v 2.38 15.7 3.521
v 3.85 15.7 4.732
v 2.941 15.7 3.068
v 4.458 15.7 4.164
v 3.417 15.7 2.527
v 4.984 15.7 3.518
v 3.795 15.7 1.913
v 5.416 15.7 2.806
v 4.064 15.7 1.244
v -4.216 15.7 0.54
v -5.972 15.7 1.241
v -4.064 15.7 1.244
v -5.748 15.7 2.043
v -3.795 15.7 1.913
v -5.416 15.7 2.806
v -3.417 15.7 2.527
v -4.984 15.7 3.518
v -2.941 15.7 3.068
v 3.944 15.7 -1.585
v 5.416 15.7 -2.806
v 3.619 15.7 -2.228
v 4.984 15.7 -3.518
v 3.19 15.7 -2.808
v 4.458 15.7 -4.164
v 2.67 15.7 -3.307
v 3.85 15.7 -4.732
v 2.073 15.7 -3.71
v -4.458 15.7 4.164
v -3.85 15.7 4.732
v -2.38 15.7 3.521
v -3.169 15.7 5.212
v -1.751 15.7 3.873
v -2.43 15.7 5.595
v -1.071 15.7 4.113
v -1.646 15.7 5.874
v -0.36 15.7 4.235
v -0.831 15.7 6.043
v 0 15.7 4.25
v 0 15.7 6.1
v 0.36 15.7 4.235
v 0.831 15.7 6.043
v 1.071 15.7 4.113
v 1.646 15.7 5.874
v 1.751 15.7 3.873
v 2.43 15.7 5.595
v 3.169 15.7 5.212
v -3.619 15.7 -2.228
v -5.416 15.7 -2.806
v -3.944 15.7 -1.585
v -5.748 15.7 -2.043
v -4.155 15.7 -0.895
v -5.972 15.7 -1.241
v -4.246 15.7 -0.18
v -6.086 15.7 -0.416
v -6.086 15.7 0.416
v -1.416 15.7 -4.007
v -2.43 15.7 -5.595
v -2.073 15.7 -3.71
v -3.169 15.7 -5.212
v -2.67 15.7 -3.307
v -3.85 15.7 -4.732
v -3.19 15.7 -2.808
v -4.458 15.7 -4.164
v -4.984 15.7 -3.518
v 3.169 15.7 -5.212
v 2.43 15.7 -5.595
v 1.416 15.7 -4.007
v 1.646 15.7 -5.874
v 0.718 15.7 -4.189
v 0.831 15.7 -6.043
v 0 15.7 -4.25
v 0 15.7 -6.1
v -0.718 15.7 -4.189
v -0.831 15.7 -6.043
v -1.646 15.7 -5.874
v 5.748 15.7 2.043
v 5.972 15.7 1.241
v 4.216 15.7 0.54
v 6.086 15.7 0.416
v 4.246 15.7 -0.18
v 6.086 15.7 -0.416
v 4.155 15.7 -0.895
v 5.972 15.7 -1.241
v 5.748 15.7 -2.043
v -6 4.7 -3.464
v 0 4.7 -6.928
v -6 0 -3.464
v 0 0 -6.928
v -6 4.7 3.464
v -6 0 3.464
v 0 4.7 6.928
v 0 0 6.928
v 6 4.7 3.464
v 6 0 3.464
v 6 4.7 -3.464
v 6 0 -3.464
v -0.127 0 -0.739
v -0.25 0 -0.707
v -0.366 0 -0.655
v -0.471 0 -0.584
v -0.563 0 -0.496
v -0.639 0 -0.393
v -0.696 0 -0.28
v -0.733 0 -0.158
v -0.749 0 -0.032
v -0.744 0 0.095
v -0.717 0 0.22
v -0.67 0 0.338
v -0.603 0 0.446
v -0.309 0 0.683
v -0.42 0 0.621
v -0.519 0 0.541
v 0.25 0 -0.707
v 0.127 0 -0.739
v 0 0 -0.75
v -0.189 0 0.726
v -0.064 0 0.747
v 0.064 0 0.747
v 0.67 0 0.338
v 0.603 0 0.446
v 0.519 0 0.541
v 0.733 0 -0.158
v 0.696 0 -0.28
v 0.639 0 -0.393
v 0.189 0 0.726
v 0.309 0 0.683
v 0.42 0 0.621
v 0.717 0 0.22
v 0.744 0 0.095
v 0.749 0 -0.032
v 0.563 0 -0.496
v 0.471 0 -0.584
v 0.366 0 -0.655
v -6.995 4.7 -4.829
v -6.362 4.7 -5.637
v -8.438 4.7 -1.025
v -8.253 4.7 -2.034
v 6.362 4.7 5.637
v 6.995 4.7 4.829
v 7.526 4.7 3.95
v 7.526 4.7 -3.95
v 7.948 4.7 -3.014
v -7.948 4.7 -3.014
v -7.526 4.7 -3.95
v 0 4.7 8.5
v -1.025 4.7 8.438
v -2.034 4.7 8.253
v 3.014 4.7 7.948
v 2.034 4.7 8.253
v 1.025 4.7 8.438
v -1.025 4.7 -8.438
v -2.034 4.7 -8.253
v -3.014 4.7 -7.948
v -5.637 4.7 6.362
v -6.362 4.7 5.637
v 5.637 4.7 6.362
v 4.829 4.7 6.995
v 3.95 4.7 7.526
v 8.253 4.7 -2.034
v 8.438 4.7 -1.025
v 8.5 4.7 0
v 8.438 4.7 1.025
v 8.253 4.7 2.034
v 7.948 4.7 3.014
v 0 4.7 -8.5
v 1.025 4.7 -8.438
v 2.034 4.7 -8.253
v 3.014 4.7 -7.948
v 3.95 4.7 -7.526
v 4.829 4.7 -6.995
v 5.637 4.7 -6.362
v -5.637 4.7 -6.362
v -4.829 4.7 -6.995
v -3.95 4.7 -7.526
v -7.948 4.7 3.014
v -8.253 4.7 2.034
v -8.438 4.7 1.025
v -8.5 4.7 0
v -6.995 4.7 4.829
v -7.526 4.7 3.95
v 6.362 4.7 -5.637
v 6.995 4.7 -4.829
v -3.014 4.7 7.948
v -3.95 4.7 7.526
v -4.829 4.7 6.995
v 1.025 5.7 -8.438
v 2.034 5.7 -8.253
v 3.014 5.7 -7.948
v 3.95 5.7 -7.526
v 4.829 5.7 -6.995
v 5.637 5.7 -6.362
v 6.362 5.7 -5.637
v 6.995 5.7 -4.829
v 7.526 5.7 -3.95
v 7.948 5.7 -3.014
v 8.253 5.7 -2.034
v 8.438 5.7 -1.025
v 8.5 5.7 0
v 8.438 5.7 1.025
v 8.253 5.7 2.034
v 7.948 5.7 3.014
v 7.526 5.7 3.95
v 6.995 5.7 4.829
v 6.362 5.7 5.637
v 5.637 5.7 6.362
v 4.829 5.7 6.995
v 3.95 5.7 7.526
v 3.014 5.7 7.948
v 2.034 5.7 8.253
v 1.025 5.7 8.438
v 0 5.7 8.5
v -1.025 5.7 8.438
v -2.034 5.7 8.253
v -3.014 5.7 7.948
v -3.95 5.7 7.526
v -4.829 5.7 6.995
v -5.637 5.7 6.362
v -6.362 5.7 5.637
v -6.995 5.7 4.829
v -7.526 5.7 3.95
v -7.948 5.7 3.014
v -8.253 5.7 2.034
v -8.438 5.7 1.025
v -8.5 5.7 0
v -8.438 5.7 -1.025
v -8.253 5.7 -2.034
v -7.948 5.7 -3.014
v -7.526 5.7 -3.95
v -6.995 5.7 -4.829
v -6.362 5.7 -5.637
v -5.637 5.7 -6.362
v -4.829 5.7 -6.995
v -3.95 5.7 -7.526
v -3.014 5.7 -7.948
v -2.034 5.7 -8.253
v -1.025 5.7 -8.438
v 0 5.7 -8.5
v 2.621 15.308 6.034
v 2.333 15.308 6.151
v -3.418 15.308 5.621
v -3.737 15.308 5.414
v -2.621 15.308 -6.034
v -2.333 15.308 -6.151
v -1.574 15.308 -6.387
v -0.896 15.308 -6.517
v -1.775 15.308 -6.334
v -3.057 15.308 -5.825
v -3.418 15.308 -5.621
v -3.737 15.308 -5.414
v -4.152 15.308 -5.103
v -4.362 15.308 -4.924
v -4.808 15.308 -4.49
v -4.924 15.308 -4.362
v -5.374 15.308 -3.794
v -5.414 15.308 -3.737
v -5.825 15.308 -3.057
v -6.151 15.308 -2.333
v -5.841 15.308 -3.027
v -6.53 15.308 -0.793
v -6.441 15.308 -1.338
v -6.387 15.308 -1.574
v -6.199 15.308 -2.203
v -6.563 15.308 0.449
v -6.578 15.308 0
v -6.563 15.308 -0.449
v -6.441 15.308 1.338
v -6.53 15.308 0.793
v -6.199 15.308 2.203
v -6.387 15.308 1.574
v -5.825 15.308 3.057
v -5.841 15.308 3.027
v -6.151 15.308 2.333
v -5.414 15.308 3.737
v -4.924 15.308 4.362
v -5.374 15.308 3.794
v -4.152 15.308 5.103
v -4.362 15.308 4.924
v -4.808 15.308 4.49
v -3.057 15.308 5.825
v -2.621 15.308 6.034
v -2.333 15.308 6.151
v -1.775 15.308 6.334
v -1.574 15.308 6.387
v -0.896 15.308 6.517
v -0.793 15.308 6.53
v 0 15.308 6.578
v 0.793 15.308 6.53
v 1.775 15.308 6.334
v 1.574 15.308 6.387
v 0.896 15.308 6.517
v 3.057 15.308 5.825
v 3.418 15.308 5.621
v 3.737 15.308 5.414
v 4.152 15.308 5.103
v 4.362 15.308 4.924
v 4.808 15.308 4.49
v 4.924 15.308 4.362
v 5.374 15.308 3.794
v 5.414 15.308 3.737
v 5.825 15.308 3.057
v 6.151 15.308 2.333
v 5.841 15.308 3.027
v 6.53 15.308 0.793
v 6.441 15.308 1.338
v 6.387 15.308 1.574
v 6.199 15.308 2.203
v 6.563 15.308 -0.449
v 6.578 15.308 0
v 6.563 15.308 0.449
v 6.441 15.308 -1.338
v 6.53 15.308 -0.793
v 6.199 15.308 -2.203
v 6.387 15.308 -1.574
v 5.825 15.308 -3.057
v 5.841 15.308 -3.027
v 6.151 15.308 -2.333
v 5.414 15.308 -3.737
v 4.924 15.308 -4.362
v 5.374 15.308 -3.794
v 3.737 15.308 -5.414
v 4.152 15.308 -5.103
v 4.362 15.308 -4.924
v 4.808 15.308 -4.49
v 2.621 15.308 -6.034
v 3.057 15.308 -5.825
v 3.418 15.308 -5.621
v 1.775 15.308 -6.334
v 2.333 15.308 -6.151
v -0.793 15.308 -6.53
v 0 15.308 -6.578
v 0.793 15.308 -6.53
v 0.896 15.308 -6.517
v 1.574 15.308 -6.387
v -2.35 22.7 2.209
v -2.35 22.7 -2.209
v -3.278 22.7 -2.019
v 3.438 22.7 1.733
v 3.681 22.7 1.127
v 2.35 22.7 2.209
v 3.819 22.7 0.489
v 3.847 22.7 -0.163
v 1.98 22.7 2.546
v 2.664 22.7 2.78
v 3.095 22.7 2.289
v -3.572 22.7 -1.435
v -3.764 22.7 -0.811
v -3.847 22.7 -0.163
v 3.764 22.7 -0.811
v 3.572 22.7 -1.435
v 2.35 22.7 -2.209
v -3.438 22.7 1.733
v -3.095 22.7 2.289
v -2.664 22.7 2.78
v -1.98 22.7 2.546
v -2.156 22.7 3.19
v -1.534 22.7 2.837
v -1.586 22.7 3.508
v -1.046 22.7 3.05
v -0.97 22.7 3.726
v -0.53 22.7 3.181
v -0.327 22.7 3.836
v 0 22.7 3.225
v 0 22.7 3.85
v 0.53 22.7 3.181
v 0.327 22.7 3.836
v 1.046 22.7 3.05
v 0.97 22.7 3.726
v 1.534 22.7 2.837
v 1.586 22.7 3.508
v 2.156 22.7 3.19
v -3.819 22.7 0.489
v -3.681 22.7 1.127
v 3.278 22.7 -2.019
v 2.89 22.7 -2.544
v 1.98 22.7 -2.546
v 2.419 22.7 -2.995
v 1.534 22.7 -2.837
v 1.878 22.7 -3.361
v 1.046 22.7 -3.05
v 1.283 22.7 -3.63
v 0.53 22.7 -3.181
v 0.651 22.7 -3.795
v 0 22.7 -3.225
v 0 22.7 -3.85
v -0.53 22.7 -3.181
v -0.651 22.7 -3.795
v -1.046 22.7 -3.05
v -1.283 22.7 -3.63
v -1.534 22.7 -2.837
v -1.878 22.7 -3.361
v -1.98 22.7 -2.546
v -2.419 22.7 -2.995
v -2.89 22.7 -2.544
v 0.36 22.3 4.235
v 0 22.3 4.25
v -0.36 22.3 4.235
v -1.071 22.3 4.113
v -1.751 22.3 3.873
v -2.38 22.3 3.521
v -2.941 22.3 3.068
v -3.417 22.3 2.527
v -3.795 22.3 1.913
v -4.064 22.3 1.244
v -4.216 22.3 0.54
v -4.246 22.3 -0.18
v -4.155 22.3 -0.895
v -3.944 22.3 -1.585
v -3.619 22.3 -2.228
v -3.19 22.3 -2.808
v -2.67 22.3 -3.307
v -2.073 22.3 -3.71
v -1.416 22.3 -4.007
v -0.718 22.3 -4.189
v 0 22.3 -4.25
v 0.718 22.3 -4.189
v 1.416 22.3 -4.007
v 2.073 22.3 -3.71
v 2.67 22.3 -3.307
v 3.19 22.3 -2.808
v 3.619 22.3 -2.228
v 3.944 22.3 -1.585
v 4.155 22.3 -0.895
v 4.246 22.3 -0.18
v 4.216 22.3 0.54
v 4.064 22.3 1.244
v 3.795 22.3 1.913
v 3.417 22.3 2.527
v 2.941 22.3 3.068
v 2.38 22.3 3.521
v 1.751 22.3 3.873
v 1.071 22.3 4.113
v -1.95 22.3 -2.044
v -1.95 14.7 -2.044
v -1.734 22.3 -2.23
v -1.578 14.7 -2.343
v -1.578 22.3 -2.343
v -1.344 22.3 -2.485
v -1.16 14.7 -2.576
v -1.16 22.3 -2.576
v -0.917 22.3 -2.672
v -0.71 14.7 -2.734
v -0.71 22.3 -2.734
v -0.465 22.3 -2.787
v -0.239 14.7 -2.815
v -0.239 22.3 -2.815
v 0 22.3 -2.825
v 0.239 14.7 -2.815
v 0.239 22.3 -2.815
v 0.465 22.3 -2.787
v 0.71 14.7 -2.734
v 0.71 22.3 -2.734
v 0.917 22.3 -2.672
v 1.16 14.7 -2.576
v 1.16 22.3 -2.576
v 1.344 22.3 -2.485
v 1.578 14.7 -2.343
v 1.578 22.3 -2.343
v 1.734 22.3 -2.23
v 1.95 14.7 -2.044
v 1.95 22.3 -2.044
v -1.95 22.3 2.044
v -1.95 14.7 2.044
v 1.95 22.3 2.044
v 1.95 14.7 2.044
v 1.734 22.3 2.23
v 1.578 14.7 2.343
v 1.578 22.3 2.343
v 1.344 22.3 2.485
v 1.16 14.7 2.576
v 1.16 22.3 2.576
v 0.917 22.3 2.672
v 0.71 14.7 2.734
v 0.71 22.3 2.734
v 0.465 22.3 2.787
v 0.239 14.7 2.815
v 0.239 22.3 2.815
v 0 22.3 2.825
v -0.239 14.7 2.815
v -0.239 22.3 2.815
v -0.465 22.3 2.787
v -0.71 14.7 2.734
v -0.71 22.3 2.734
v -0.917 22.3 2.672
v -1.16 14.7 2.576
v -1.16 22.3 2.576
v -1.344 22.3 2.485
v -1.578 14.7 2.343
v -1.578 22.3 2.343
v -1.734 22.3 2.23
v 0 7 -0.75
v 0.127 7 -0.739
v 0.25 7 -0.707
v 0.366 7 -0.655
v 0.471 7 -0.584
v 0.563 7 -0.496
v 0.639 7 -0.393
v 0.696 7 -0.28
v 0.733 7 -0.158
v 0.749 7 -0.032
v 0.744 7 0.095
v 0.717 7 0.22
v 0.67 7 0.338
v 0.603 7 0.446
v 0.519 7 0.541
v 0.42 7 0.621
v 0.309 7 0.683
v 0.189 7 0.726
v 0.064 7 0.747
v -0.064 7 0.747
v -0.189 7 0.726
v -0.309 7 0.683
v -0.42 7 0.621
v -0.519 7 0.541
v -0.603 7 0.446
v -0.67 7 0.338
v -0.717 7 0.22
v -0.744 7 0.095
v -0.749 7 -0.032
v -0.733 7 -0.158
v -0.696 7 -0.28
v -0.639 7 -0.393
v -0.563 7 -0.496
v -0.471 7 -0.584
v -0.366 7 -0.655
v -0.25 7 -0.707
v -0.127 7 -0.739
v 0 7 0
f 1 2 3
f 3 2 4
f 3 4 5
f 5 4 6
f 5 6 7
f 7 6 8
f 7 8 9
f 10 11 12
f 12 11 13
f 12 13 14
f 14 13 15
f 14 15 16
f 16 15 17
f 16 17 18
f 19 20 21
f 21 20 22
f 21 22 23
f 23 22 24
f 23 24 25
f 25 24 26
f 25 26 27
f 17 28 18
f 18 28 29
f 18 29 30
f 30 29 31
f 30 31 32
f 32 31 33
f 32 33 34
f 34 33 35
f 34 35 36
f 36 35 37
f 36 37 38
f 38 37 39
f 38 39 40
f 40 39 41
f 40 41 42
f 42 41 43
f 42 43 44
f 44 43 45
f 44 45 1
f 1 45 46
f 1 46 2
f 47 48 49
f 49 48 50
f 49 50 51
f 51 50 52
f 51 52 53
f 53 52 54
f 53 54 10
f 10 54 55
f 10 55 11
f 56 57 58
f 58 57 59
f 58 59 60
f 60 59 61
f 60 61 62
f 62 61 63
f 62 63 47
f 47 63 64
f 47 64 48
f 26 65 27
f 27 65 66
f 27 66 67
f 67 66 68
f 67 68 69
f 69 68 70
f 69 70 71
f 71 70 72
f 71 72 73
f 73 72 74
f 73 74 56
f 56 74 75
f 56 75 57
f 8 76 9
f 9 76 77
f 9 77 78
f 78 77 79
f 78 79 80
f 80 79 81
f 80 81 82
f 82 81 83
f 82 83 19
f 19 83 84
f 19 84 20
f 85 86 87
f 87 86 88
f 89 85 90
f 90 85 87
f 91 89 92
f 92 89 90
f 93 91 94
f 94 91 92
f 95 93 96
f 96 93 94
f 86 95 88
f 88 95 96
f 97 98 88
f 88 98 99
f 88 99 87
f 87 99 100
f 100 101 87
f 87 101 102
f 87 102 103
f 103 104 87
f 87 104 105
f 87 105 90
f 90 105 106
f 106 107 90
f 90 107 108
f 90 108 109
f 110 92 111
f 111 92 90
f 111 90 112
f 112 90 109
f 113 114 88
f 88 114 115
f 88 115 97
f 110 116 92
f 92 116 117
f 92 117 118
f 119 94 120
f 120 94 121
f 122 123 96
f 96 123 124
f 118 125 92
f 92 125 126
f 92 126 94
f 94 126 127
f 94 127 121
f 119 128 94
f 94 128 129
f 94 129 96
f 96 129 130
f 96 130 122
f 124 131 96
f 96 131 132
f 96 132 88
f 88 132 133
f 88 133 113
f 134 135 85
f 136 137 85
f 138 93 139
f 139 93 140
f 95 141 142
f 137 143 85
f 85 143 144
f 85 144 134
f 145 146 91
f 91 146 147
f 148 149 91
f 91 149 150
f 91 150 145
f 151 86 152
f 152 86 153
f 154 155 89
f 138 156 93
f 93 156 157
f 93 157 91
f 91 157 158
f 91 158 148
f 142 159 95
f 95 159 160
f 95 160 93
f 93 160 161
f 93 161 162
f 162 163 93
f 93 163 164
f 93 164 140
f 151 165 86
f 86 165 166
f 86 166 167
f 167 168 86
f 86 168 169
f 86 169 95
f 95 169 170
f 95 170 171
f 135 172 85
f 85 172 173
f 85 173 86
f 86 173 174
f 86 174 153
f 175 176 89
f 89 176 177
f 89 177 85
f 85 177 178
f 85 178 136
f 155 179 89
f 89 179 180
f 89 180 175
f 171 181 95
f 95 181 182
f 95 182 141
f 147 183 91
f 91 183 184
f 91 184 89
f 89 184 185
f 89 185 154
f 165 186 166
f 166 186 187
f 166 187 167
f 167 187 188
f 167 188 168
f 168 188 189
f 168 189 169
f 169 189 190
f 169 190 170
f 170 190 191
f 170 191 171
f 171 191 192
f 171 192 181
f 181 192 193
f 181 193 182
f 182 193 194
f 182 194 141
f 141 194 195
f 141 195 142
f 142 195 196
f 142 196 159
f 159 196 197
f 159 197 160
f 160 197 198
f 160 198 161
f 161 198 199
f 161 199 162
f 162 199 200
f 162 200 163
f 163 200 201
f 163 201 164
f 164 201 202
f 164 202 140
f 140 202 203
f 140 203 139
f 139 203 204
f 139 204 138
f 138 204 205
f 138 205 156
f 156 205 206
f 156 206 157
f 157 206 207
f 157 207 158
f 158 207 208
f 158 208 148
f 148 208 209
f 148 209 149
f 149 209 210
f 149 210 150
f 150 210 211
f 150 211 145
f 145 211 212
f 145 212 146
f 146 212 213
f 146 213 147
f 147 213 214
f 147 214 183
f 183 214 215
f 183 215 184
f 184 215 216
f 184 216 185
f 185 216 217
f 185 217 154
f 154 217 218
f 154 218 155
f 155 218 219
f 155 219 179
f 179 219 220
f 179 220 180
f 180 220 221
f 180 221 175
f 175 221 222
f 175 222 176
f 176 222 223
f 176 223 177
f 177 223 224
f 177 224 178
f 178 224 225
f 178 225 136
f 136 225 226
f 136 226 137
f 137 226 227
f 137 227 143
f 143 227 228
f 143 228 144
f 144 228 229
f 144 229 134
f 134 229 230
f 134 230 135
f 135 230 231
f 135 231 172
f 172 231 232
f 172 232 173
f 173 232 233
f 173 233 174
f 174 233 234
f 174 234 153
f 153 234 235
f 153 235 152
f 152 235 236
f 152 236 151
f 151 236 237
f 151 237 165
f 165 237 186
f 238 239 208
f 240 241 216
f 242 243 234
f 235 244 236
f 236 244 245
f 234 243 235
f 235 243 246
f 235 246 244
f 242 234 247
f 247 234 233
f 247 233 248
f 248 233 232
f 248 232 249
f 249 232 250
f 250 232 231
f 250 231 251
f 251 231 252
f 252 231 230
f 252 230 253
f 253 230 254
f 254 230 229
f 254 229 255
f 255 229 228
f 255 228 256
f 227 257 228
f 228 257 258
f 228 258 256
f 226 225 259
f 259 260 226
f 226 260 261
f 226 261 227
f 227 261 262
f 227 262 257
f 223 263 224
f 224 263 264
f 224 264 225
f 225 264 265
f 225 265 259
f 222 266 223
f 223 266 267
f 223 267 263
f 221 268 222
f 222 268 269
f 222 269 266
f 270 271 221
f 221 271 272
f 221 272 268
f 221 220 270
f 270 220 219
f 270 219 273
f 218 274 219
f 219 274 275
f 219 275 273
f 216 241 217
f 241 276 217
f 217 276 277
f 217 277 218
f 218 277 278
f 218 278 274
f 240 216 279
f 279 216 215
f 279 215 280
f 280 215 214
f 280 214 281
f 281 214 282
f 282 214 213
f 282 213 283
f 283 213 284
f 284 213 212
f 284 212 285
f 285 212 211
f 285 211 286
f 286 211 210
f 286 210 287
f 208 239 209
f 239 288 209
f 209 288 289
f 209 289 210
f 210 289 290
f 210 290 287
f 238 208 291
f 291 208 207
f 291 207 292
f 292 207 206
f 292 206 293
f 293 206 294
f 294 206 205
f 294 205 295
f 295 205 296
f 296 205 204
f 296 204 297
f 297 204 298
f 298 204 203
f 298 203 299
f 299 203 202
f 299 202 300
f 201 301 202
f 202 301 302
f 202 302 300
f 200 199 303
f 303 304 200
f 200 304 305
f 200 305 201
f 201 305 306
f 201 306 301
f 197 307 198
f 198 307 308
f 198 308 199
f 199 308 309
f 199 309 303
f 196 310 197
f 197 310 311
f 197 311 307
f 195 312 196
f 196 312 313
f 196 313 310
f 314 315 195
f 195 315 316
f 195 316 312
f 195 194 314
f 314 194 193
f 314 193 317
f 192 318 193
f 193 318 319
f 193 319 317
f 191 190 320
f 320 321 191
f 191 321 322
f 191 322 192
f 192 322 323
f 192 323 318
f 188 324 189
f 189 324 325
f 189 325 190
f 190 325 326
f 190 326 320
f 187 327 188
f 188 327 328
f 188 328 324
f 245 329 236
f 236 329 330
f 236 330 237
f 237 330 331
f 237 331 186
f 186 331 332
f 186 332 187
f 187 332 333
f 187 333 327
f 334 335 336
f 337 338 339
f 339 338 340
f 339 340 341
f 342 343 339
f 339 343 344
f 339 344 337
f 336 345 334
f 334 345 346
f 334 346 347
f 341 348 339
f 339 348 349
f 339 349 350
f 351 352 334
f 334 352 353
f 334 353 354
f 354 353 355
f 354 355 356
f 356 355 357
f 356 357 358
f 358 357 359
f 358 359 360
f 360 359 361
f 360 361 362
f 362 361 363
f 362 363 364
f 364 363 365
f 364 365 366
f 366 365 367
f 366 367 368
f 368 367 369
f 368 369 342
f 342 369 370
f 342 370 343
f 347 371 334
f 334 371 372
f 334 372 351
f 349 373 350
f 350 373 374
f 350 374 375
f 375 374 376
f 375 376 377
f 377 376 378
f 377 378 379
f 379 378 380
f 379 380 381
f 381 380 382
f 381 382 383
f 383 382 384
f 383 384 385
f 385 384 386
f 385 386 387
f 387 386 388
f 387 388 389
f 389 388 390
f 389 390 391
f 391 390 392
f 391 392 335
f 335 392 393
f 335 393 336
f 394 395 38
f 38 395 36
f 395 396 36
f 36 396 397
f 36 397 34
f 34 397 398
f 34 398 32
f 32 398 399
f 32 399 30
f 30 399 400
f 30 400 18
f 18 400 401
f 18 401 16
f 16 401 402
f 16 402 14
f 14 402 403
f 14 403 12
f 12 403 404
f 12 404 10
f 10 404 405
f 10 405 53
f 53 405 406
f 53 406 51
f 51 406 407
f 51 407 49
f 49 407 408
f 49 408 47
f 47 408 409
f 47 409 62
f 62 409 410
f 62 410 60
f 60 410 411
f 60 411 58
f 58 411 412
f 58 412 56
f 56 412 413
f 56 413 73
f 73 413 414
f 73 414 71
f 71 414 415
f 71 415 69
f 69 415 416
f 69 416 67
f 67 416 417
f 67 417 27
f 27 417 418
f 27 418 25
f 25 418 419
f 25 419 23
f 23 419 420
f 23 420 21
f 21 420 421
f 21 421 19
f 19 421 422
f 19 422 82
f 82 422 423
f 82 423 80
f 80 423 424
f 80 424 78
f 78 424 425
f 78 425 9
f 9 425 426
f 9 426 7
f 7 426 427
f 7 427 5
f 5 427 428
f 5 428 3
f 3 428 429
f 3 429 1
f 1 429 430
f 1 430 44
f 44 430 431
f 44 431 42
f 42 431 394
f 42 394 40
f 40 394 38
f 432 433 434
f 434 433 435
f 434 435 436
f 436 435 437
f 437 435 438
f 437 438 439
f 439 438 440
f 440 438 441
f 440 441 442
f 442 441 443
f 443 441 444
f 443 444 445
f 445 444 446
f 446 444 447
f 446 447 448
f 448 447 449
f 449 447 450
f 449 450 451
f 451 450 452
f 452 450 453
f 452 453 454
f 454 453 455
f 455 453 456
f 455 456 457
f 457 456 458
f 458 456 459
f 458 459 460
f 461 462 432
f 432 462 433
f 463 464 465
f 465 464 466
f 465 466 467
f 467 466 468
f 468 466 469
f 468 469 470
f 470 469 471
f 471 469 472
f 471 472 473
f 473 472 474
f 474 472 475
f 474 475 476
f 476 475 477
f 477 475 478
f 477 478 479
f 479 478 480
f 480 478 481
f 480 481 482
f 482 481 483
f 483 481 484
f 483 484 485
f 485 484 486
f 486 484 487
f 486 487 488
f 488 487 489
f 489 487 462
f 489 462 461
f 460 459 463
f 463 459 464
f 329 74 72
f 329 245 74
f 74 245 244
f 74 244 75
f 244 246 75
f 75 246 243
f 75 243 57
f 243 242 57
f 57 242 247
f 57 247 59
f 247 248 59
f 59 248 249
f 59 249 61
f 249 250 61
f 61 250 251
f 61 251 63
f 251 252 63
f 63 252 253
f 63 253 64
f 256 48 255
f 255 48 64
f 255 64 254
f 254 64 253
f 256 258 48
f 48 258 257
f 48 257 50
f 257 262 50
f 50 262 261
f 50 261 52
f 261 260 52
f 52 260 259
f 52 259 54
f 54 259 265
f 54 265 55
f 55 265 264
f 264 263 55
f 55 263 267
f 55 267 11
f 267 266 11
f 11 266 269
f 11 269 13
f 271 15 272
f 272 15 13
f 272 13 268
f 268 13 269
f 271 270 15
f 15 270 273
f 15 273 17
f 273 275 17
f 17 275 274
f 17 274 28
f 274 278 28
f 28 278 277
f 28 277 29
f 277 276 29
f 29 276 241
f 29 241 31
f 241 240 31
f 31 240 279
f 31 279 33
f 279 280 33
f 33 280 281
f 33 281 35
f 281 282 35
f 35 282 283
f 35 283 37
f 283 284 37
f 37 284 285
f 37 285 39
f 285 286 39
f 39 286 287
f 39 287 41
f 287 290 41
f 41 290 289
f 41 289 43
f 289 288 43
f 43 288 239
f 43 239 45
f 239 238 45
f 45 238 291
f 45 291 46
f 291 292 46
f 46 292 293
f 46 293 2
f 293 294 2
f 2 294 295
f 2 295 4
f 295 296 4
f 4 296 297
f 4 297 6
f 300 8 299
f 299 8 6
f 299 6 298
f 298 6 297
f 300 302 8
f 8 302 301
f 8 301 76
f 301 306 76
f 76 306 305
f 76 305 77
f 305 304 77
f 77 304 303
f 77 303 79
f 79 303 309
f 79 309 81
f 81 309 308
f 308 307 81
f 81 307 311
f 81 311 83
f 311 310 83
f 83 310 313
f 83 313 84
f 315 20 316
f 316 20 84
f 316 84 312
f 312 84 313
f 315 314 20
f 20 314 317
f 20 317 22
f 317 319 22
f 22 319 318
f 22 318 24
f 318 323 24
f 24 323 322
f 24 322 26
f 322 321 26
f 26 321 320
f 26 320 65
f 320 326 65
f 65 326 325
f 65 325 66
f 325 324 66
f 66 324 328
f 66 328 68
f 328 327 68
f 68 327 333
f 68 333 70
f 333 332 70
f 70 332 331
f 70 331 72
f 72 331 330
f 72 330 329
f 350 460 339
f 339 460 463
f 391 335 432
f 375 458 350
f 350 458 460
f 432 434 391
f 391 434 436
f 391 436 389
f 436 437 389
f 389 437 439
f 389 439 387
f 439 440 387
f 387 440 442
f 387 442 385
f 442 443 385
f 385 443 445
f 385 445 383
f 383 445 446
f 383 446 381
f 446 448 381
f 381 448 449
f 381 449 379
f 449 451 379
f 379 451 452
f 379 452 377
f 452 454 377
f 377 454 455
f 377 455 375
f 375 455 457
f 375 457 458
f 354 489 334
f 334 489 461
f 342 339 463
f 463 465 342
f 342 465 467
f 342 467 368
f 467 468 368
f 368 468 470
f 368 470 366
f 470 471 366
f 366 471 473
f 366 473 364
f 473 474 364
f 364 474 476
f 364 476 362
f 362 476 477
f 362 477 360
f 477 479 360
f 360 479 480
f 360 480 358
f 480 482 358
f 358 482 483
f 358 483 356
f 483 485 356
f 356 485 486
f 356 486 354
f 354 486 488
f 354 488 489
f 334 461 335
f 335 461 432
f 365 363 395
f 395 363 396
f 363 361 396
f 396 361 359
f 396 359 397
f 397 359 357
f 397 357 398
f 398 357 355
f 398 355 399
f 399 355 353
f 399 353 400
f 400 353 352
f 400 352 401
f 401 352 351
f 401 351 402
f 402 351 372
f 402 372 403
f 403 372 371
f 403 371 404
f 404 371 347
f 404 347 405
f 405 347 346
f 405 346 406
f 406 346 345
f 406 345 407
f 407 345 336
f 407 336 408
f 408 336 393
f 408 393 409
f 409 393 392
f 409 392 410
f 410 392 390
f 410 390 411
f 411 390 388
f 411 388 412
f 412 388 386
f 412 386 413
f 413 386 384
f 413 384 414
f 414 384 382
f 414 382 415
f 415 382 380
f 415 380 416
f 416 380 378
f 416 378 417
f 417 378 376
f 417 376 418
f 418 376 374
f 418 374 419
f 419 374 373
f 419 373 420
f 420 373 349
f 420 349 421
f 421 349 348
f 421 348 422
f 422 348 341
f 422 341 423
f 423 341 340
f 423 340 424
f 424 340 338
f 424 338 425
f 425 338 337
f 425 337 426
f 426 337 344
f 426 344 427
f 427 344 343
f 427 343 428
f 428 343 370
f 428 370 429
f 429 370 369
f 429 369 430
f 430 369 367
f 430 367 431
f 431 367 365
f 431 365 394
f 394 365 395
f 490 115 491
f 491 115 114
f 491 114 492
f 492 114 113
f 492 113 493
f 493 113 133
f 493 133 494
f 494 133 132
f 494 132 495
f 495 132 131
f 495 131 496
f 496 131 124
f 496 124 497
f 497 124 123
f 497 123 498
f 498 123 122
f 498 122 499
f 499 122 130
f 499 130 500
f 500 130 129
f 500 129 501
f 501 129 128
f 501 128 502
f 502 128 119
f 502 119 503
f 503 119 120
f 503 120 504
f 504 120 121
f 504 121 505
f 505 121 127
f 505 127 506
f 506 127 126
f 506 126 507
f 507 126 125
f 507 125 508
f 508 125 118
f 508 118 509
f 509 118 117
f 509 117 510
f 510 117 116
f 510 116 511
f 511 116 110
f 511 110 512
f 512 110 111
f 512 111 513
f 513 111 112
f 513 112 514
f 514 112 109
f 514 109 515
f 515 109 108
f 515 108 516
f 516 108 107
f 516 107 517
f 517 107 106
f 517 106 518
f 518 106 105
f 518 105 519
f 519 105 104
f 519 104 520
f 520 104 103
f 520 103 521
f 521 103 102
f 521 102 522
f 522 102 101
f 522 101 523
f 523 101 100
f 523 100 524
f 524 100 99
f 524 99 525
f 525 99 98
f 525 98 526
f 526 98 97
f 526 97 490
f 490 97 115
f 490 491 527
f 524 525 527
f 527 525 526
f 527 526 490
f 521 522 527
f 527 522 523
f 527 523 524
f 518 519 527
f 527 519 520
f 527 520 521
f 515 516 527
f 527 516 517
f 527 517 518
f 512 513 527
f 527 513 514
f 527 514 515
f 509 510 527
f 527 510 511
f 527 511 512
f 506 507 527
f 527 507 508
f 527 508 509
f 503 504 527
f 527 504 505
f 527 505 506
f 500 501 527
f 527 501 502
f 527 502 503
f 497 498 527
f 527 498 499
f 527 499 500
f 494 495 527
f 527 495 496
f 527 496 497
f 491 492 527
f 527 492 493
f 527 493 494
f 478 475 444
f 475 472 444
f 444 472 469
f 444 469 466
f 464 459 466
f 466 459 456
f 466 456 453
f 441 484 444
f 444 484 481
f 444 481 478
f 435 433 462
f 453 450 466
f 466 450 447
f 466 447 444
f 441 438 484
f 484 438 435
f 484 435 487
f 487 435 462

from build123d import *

# Parameters (mm, degrees)
BOSS_EXTRUDE1_DEPTH = 4.7
SKETCH2_R           = 8.5
BOSS_EXTRUDE2_DEPTH = 1
SKETCH4_R           = 6.5
SKETCH3_R           = 8.5
SKETCH5_R           = 4.25
BOSS_EXTRUDE3_DEPTH = 7
CHAMFER1_SIZE       = 0.4
SKETCH6_R           = 0.75
CUT_EXTRUDE1_DEPTH  = 7
CUT_EXTRUDE2_START  = -1
CUT_EXTRUDE2_DEPTH  = 1


with BuildPart() as part:
    # Sketch1 → Boss-Extrude1 (new body)
    with BuildSketch(Plane(origin=(0, 0, 0), x_dir=(1, 0, 0), z_dir=(0, 1, 0))):
        Polygon((0, 6.92820323), (6, 3.464101615), (6, -3.464101615), (0, -6.92820323), (-6, -3.464101615), (-6, 3.464101615), align=None)
    extrude(amount=BOSS_EXTRUDE1_DEPTH)

    # Sketch2 → Boss-Extrude2 (add)
    with BuildSketch(Plane(origin=(0, 4.7, 0), x_dir=(1, 0, 0), z_dir=(0, 1, 0))):
        with Locations(Location((0, 0, 0), (0, 0, 270))):
            Circle(SKETCH2_R)
    extrude(amount=BOSS_EXTRUDE2_DEPTH)

    # Sketch4 → Loft1 section 0
    with BuildSketch(Plane(origin=(0, 15.7, 0), x_dir=(1, 0, 0), z_dir=(0, 1, 0))):
        Circle(SKETCH4_R)
    # Sketch3 → Loft1 section 1
    with BuildSketch(Plane(origin=(0, 5.7, 0), x_dir=(1, 0, 0), z_dir=(0, 1, 0))):
        Circle(SKETCH3_R)
    loft()

    # Sketch5 → Boss-Extrude3 (add)
    with BuildSketch(Plane(origin=(0, 15.7, 0), x_dir=(1, 0, 0), z_dir=(0, 1, 0))):
        with Locations(Location((0, 0, 0), (0, 0, 270))):
            Circle(SKETCH5_R)
        with BuildLine():
            Line((-1.95, 2.044046232), (-1.95, -2.044046232))
            ThreePointArc((-1.95, -2.044046232), (0, -2.825), (1.95, -2.044046232))
            Line((1.95, -2.044046232), (1.95, 2.044046232))
            ThreePointArc((1.95, 2.044046232), (0, 2.825), (-1.95, 2.044046232))
        make_face(mode=Mode.SUBTRACT)
    extrude(amount=BOSS_EXTRUDE3_DEPTH)

    # Chamfer1
    chamfer1_edges = [part.edges().sort_by_distance(p)[0] for p in [
        (-6.5, 15.7, 0),
        (0, 22.7, -4.25),
        (0, 22.7, -2.825),
        (-1.95, 22.7, 0),
        (0, 22.7, 2.825),
        (1.95, 22.7, 0),
    ]]
    chamfer(chamfer1_edges, length=CHAMFER1_SIZE)

    # Sketch6 → Cut-Extrude1 (cut)
    with BuildSketch(Plane.XZ):
        with Locations(Location((0, 0, 0), (0, 0, 270))):
            Circle(SKETCH6_R)
    extrude(amount=-CUT_EXTRUDE1_DEPTH, mode=Mode.SUBTRACT)

    # Sketch7 → Cut-Extrude2 (cut)
    with BuildSketch(Plane(origin=(0, 15.7, 0), x_dir=(1, 0, 0), z_dir=(0, 1, 0)).offset(CUT_EXTRUDE2_START)):
        with BuildLine():
            Line((1.95, -2.044046232), (1.95, 2.044046232))
            ThreePointArc((1.95, 2.044046232), (0, 2.825), (-1.95, 2.044046232))
            Line((-1.95, 2.044046232), (-1.95, -2.044046232))
            ThreePointArc((-1.95, -2.044046232), (0, -2.825), (1.95, -2.044046232))
        make_face()
    extrude(amount=CUT_EXTRUDE2_DEPTH, mode=Mode.SUBTRACT)


solid = part.part
